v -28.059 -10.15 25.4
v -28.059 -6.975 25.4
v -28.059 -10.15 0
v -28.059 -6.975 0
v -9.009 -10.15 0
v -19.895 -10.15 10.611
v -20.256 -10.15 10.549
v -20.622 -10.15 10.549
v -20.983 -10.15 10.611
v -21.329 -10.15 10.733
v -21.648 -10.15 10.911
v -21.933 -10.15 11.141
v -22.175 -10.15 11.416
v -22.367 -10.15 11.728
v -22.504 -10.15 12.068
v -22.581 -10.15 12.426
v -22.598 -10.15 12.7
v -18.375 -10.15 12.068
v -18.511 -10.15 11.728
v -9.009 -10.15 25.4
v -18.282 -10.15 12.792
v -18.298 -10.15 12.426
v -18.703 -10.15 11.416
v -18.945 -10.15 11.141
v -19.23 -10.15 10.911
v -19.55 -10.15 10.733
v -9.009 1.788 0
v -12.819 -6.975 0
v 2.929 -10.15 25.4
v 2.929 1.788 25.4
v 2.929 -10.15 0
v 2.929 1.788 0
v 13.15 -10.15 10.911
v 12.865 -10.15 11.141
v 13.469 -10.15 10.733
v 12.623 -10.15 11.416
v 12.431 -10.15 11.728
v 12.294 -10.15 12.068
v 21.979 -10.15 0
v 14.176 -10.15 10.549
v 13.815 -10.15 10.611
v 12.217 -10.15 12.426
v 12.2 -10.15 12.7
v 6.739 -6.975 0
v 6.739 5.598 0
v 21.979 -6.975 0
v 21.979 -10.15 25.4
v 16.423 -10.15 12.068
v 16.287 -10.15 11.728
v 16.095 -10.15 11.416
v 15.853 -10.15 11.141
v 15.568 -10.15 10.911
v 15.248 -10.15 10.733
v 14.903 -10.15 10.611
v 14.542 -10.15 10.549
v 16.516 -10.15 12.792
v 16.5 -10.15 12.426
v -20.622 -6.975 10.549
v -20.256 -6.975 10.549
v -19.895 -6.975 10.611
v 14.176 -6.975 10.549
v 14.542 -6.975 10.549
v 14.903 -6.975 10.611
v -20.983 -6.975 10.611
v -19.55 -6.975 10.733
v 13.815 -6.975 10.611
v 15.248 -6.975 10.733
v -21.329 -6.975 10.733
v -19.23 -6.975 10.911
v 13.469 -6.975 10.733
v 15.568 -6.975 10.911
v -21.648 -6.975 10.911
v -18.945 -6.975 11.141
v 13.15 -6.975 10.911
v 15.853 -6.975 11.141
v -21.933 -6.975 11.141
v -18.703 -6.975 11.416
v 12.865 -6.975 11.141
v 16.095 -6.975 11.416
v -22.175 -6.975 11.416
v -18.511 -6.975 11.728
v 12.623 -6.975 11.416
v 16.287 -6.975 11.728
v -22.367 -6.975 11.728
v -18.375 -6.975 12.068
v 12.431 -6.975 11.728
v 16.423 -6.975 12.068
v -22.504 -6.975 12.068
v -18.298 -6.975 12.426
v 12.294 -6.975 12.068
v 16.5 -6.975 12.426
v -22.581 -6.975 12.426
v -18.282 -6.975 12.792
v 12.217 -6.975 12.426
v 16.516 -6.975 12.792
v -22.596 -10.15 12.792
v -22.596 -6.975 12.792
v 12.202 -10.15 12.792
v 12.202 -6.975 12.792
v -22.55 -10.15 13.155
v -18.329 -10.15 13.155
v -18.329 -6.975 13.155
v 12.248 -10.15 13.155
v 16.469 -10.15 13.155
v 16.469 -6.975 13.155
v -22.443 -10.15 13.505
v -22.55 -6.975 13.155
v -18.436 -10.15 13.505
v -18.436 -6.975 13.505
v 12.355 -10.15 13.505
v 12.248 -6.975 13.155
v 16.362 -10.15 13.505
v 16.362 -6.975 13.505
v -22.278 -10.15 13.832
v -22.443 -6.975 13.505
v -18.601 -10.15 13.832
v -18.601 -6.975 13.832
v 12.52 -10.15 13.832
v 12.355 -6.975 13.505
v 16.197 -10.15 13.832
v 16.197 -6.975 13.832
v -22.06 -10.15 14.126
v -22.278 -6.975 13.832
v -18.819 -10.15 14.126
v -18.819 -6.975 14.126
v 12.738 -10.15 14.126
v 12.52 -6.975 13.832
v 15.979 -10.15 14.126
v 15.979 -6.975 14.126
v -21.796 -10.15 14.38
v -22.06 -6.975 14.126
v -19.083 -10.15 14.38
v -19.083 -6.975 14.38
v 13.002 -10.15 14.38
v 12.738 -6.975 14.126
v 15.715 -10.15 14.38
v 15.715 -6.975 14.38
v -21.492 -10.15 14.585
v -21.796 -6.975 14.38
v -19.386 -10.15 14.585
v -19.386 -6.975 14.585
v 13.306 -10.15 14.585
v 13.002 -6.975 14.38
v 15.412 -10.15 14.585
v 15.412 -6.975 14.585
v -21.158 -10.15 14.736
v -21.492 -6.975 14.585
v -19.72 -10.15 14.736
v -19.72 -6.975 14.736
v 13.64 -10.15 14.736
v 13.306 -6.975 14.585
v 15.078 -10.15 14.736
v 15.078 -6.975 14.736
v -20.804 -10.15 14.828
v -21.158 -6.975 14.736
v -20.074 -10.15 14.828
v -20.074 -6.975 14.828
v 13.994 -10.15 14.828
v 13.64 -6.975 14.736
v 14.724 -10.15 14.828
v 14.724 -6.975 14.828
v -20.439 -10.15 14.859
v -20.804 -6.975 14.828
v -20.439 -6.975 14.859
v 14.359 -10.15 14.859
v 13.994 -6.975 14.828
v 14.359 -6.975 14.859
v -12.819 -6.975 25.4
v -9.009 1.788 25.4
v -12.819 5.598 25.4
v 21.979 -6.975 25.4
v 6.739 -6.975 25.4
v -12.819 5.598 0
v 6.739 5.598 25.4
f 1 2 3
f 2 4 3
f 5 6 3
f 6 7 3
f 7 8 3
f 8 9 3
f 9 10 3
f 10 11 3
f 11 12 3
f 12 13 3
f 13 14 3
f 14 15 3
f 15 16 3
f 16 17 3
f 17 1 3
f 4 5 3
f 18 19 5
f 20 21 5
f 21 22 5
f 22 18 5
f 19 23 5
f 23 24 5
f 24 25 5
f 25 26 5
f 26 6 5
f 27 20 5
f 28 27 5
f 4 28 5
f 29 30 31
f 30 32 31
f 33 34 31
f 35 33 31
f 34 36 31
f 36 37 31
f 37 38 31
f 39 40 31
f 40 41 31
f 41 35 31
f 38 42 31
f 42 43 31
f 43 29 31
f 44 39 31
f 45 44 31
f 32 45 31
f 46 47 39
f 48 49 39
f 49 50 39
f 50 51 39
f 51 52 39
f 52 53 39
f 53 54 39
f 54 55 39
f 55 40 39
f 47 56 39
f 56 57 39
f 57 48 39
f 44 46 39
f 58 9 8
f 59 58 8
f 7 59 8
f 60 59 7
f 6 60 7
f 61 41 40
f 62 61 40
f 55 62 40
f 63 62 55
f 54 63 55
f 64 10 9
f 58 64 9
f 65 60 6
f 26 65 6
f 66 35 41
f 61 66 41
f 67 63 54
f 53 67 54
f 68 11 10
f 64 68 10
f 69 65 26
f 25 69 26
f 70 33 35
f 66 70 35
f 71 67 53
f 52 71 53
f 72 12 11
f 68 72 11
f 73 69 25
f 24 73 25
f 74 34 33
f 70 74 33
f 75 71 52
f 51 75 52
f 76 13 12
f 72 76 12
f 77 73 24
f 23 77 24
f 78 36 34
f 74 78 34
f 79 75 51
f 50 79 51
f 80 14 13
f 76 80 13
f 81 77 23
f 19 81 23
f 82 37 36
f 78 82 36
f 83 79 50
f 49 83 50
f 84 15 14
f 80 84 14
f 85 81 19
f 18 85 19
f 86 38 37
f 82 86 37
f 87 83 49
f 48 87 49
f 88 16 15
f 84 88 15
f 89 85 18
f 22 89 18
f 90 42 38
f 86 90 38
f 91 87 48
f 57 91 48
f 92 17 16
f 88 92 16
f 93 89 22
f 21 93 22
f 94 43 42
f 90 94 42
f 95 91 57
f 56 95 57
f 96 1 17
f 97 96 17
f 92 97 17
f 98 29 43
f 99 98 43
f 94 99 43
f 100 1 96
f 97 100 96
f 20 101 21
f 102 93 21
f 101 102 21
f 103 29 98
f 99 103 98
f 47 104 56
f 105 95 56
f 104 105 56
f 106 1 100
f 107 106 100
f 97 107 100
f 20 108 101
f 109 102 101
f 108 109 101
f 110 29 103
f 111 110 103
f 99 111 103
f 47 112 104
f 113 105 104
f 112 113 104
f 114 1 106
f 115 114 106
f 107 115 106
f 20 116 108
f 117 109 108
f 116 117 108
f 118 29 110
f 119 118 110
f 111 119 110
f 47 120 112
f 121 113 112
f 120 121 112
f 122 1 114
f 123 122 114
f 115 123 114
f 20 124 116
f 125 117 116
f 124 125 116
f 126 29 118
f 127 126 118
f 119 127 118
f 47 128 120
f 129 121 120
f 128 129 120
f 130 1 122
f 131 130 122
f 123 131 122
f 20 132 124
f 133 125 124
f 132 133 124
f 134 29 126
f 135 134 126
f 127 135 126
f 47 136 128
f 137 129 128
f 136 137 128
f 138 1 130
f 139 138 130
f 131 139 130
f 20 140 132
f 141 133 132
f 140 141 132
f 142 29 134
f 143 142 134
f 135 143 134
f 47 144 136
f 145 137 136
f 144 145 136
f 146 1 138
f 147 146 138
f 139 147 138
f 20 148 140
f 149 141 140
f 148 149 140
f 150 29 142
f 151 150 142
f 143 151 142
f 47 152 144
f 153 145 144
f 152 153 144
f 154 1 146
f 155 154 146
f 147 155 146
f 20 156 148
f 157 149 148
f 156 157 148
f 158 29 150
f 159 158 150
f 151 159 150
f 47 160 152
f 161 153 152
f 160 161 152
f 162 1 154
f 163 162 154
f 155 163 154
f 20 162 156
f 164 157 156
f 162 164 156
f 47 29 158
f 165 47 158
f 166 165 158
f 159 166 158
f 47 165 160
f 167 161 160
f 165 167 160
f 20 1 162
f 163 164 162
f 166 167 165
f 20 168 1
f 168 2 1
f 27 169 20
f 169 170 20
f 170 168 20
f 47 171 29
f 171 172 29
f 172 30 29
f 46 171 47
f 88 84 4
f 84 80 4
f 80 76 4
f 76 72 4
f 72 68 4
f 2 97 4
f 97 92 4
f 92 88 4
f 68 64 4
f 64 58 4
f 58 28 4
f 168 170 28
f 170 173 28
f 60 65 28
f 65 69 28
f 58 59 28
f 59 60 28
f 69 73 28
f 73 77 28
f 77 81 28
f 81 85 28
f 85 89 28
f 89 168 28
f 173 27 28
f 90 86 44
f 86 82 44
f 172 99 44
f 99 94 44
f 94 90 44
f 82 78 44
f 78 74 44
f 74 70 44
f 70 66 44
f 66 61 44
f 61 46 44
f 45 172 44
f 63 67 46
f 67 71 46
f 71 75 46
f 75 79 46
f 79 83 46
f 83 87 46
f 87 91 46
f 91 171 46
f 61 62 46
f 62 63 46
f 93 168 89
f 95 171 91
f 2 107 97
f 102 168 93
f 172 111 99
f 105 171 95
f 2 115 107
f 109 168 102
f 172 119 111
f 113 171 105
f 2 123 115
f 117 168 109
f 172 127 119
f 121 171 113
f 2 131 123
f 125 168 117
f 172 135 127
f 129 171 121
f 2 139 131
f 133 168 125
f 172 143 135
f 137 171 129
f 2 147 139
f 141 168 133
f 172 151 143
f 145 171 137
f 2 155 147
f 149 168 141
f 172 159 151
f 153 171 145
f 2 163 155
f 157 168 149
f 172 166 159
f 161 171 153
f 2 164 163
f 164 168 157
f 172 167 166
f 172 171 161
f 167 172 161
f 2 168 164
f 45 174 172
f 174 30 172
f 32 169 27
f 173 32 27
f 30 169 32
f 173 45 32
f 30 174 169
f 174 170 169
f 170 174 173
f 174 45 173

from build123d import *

# Parameters (mm, degrees)
BOSS_EXTRUDE1_DEPTH = 25.4
SKETCH2_R           = 2.159
CUT_EXTRUDE1_DEPTH  = 25.4
SKETCH3_R           = 2.159
CUT_EXTRUDE2_DEPTH  = 25.4


with BuildPart() as part:
    # Sketch1 → Boss-Extrude1 (new body)
    with BuildSketch(Plane.XY):
        Polygon((-9.009241013, -10.149737798), (-28.059241013, -10.149737798), (-28.059241013, -6.974737798), (-12.819241013, -6.974737798), (-12.819241013, 5.598262202), (6.738758987, 5.598262202), (6.738758987, -6.974737798), (21.978758987, -6.974737798), (21.978758987, -10.149737798), (2.928758987, -10.149737798), (2.928758987, 1.788262202), (-9.009241013, 1.788262202), align=None)
    extrude(amount=BOSS_EXTRUDE1_DEPTH)

    # Sketch2 → Cut-Extrude1 (cut)
    with BuildSketch(Plane(origin=(0, -6.974737798, 0), x_dir=(1, 0, 0), z_dir=(0, 1, 0))):
        with Locations((14.358758987, -12.7)):
            Circle(SKETCH2_R)
    extrude(amount=-CUT_EXTRUDE1_DEPTH, mode=Mode.SUBTRACT)

    # Sketch3 → Cut-Extrude2 (cut)
    with BuildSketch(Plane(origin=(0, -6.974737798, 0), x_dir=(1, 0, 0), z_dir=(0, 1, 0))):
        with Locations((-20.439241013, -12.7)):
            Circle(SKETCH3_R)
    extrude(amount=-CUT_EXTRUDE2_DEPTH, mode=Mode.SUBTRACT)


solid = part.part
